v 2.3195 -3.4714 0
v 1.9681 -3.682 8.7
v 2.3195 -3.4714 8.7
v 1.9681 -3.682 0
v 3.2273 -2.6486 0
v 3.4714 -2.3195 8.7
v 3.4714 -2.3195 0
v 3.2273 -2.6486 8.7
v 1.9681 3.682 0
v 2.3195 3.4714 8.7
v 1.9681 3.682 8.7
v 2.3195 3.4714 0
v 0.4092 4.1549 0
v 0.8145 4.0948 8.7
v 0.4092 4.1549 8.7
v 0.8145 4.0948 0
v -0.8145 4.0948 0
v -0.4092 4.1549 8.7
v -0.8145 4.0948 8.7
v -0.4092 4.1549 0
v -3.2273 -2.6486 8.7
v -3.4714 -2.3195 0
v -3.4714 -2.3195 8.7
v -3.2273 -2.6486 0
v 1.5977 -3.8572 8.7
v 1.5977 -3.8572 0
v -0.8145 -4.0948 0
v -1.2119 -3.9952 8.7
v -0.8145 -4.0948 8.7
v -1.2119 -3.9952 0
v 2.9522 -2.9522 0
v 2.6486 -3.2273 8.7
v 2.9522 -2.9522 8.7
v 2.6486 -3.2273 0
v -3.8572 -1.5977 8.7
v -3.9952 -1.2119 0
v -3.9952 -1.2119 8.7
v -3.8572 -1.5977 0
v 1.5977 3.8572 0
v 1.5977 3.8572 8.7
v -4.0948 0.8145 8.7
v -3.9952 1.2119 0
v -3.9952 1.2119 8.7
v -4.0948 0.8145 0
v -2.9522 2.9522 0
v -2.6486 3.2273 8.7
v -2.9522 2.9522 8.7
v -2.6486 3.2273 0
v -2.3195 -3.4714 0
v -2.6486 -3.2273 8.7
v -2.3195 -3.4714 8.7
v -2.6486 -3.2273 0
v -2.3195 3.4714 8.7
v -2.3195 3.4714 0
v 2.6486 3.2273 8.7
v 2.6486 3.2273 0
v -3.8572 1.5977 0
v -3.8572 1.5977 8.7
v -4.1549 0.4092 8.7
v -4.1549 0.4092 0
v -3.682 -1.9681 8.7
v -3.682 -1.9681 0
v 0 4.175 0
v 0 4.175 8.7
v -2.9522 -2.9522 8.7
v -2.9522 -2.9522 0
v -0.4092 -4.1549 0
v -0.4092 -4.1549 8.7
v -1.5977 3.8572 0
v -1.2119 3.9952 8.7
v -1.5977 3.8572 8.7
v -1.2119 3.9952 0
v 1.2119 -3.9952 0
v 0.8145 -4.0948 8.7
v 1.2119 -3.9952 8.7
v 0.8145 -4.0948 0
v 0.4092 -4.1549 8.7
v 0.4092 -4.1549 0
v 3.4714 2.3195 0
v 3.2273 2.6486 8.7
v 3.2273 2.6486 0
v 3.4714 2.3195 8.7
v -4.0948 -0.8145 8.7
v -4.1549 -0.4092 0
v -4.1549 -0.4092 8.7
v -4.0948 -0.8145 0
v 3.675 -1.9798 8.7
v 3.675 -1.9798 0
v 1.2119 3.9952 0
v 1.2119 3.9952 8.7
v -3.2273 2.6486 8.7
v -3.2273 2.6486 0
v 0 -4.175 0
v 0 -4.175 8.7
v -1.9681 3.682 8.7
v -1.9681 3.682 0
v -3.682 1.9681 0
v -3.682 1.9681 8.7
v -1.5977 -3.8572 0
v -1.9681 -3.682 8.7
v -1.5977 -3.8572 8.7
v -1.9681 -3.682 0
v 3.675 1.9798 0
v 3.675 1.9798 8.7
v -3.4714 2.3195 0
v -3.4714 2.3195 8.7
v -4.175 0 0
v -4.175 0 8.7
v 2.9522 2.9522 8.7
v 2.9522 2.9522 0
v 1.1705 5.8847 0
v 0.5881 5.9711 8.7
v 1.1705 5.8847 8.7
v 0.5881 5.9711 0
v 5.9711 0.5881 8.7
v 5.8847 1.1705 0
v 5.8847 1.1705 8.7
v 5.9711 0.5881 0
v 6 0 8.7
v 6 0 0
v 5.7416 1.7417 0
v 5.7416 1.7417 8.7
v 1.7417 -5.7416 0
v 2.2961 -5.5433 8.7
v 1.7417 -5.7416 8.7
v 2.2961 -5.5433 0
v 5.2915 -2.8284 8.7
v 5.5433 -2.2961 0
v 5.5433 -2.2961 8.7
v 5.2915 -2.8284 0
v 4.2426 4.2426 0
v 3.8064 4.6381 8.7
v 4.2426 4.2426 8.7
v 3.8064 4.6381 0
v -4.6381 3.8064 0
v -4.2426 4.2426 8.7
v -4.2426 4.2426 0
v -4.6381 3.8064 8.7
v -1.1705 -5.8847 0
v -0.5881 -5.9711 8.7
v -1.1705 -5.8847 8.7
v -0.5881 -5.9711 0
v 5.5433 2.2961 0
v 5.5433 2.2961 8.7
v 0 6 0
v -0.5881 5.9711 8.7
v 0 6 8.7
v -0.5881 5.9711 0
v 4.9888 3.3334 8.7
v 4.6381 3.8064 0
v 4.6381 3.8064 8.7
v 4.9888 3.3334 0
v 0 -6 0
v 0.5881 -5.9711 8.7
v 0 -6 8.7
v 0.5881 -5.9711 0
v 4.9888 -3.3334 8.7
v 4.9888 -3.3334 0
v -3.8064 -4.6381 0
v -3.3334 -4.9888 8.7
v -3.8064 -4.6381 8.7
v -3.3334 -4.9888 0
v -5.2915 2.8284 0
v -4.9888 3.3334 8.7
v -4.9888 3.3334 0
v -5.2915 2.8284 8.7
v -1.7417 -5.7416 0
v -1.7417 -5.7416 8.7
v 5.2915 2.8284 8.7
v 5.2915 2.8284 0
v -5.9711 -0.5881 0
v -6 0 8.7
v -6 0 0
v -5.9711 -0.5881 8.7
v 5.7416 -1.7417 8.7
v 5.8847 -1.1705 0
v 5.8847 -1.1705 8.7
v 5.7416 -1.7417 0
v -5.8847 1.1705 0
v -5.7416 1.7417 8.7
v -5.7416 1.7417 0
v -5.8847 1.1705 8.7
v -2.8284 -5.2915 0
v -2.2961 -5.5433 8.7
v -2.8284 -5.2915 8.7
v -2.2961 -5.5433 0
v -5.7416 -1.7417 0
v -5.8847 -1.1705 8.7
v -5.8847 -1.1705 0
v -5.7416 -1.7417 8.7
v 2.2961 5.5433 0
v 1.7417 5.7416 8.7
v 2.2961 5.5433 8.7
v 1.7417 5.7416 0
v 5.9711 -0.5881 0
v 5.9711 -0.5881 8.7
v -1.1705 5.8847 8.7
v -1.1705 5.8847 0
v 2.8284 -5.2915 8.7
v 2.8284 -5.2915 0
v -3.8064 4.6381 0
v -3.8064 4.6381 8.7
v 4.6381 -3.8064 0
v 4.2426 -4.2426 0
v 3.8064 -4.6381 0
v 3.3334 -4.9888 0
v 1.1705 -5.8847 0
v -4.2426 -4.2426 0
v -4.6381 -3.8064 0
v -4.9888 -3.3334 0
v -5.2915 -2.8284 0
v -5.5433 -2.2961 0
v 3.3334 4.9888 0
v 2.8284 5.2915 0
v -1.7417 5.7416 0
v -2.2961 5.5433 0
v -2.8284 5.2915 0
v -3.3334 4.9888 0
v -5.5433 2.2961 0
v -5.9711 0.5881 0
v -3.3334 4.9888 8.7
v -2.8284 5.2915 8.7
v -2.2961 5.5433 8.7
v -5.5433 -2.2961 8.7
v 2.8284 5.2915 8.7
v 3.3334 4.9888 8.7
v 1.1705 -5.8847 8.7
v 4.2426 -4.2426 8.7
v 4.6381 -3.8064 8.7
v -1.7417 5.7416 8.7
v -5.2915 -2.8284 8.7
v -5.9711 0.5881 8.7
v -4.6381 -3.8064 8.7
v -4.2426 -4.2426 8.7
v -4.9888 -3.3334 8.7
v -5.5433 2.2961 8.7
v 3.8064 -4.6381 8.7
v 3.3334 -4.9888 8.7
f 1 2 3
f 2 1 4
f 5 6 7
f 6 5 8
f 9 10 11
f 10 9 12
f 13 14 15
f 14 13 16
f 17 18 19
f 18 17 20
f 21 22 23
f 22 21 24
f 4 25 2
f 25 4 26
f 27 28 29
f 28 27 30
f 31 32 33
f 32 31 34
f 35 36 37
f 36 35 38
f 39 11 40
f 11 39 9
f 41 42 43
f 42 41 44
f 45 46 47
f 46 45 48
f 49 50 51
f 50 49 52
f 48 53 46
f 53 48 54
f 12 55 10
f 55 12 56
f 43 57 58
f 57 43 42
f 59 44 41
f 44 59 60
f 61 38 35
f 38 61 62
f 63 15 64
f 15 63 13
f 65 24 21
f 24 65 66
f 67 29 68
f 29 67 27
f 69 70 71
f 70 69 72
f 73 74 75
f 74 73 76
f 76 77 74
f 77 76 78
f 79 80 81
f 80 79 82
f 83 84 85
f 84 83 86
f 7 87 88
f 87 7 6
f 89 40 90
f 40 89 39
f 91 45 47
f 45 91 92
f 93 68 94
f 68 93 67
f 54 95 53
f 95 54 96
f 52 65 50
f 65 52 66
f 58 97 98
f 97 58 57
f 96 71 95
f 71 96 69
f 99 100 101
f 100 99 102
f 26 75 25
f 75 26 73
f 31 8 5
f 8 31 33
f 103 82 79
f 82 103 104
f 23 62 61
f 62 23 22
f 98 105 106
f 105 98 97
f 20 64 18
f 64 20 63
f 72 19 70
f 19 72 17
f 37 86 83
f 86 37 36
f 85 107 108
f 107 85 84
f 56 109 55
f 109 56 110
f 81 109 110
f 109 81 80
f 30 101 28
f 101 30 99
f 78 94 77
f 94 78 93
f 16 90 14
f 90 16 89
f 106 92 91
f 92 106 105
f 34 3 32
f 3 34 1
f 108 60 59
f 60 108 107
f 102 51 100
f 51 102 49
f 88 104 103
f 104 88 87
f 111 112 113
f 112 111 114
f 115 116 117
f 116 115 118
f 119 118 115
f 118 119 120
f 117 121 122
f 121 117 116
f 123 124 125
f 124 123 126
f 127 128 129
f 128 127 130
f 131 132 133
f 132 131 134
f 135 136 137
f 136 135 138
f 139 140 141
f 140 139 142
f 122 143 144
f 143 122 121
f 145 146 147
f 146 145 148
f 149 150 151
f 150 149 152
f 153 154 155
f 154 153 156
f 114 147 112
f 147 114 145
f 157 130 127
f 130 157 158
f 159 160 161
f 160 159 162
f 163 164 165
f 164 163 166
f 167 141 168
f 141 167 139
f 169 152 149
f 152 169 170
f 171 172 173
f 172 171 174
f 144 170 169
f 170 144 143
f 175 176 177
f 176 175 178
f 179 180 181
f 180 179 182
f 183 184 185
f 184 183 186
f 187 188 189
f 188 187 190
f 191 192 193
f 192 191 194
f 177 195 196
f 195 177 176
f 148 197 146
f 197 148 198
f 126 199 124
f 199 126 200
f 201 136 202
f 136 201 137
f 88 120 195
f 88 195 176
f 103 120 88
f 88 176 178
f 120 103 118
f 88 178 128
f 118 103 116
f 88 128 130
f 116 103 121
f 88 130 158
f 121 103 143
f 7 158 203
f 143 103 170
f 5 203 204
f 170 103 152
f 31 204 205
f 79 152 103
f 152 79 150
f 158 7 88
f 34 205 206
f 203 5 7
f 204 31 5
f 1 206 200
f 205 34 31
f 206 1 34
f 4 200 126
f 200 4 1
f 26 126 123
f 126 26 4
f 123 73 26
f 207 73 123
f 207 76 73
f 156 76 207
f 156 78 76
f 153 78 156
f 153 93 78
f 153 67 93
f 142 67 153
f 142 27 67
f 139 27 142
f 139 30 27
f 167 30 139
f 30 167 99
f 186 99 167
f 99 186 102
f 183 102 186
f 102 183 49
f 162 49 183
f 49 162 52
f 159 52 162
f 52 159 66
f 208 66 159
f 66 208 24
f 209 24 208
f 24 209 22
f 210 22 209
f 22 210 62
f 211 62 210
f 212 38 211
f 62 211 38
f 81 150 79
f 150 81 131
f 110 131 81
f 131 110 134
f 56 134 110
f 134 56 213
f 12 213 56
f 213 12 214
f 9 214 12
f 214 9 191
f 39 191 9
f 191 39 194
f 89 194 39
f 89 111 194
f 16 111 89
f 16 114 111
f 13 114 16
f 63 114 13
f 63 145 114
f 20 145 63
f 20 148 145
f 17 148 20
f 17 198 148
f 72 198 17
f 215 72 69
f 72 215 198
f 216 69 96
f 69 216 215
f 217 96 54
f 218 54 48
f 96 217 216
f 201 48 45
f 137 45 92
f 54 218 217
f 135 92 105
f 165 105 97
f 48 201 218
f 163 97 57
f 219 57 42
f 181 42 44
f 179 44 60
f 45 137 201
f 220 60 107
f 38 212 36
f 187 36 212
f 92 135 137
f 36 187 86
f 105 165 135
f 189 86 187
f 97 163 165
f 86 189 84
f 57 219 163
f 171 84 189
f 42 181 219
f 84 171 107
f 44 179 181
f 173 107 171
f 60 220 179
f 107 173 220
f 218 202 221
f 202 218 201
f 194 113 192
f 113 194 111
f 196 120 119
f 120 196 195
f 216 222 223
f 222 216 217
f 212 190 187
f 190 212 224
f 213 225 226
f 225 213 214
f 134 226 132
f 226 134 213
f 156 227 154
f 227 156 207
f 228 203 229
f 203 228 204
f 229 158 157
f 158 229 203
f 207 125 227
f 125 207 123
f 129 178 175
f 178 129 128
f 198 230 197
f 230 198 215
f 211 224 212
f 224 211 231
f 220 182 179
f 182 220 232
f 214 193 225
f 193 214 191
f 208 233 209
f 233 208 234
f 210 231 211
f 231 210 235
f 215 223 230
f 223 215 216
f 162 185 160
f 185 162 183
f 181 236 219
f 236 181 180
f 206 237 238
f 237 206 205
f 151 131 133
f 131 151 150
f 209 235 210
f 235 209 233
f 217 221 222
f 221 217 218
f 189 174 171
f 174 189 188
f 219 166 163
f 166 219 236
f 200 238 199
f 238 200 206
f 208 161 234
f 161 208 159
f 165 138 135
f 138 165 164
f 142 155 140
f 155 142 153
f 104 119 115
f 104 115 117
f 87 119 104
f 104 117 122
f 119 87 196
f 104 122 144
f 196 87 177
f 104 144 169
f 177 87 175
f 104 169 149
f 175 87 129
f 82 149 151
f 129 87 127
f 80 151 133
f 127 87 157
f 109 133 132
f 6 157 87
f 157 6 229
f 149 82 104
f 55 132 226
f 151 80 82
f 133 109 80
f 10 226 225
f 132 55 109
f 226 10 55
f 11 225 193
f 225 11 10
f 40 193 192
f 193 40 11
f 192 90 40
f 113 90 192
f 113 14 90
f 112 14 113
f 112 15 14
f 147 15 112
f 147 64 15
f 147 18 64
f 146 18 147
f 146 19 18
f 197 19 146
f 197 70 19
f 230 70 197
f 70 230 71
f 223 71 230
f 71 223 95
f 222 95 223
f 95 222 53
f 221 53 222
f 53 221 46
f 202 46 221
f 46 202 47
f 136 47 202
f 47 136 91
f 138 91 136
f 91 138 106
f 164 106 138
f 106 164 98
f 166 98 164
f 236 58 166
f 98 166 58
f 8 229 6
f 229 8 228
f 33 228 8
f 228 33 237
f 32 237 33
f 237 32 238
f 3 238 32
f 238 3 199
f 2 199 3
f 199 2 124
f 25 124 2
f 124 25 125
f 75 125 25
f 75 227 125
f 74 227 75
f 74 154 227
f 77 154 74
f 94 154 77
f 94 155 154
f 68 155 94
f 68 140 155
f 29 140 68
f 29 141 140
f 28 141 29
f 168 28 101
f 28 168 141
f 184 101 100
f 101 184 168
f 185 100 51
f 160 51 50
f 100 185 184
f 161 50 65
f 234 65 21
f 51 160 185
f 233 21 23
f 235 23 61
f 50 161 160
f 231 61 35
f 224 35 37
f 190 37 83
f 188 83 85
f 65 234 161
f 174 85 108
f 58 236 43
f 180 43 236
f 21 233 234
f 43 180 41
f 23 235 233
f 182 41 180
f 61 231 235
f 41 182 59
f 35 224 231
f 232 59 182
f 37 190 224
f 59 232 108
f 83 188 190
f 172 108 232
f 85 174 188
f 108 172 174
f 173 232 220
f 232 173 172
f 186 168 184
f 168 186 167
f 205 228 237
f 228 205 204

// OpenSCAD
// Gen-CX — gap sleeve: rigid spacer on the shaft BETWEEN the two rotor carriers (passes through the stator
// hole). Length = m2m, so it sets the magnet gap and carries the full magnet pull. Print x1, upright.
include <parameters.scad>;
$fn = 64;
// D-flat keyed bore: flat faces +X (angle 0 = magnet pocket 0 = index notch)
module dflat_bore(h) {
    intersection() {
        cylinder(d=shaft_bore, h=h);
        translate([-shaft_bore, -shaft_bore, 0]) cube([shaft_bore + dflat_x, 2*shaft_bore, h]);
    }
}

difference() {
    cylinder(d=sleeve_od, h=m2m);
    translate([0, 0, -0.1]) dflat_bore(m2m + 0.2);
}
